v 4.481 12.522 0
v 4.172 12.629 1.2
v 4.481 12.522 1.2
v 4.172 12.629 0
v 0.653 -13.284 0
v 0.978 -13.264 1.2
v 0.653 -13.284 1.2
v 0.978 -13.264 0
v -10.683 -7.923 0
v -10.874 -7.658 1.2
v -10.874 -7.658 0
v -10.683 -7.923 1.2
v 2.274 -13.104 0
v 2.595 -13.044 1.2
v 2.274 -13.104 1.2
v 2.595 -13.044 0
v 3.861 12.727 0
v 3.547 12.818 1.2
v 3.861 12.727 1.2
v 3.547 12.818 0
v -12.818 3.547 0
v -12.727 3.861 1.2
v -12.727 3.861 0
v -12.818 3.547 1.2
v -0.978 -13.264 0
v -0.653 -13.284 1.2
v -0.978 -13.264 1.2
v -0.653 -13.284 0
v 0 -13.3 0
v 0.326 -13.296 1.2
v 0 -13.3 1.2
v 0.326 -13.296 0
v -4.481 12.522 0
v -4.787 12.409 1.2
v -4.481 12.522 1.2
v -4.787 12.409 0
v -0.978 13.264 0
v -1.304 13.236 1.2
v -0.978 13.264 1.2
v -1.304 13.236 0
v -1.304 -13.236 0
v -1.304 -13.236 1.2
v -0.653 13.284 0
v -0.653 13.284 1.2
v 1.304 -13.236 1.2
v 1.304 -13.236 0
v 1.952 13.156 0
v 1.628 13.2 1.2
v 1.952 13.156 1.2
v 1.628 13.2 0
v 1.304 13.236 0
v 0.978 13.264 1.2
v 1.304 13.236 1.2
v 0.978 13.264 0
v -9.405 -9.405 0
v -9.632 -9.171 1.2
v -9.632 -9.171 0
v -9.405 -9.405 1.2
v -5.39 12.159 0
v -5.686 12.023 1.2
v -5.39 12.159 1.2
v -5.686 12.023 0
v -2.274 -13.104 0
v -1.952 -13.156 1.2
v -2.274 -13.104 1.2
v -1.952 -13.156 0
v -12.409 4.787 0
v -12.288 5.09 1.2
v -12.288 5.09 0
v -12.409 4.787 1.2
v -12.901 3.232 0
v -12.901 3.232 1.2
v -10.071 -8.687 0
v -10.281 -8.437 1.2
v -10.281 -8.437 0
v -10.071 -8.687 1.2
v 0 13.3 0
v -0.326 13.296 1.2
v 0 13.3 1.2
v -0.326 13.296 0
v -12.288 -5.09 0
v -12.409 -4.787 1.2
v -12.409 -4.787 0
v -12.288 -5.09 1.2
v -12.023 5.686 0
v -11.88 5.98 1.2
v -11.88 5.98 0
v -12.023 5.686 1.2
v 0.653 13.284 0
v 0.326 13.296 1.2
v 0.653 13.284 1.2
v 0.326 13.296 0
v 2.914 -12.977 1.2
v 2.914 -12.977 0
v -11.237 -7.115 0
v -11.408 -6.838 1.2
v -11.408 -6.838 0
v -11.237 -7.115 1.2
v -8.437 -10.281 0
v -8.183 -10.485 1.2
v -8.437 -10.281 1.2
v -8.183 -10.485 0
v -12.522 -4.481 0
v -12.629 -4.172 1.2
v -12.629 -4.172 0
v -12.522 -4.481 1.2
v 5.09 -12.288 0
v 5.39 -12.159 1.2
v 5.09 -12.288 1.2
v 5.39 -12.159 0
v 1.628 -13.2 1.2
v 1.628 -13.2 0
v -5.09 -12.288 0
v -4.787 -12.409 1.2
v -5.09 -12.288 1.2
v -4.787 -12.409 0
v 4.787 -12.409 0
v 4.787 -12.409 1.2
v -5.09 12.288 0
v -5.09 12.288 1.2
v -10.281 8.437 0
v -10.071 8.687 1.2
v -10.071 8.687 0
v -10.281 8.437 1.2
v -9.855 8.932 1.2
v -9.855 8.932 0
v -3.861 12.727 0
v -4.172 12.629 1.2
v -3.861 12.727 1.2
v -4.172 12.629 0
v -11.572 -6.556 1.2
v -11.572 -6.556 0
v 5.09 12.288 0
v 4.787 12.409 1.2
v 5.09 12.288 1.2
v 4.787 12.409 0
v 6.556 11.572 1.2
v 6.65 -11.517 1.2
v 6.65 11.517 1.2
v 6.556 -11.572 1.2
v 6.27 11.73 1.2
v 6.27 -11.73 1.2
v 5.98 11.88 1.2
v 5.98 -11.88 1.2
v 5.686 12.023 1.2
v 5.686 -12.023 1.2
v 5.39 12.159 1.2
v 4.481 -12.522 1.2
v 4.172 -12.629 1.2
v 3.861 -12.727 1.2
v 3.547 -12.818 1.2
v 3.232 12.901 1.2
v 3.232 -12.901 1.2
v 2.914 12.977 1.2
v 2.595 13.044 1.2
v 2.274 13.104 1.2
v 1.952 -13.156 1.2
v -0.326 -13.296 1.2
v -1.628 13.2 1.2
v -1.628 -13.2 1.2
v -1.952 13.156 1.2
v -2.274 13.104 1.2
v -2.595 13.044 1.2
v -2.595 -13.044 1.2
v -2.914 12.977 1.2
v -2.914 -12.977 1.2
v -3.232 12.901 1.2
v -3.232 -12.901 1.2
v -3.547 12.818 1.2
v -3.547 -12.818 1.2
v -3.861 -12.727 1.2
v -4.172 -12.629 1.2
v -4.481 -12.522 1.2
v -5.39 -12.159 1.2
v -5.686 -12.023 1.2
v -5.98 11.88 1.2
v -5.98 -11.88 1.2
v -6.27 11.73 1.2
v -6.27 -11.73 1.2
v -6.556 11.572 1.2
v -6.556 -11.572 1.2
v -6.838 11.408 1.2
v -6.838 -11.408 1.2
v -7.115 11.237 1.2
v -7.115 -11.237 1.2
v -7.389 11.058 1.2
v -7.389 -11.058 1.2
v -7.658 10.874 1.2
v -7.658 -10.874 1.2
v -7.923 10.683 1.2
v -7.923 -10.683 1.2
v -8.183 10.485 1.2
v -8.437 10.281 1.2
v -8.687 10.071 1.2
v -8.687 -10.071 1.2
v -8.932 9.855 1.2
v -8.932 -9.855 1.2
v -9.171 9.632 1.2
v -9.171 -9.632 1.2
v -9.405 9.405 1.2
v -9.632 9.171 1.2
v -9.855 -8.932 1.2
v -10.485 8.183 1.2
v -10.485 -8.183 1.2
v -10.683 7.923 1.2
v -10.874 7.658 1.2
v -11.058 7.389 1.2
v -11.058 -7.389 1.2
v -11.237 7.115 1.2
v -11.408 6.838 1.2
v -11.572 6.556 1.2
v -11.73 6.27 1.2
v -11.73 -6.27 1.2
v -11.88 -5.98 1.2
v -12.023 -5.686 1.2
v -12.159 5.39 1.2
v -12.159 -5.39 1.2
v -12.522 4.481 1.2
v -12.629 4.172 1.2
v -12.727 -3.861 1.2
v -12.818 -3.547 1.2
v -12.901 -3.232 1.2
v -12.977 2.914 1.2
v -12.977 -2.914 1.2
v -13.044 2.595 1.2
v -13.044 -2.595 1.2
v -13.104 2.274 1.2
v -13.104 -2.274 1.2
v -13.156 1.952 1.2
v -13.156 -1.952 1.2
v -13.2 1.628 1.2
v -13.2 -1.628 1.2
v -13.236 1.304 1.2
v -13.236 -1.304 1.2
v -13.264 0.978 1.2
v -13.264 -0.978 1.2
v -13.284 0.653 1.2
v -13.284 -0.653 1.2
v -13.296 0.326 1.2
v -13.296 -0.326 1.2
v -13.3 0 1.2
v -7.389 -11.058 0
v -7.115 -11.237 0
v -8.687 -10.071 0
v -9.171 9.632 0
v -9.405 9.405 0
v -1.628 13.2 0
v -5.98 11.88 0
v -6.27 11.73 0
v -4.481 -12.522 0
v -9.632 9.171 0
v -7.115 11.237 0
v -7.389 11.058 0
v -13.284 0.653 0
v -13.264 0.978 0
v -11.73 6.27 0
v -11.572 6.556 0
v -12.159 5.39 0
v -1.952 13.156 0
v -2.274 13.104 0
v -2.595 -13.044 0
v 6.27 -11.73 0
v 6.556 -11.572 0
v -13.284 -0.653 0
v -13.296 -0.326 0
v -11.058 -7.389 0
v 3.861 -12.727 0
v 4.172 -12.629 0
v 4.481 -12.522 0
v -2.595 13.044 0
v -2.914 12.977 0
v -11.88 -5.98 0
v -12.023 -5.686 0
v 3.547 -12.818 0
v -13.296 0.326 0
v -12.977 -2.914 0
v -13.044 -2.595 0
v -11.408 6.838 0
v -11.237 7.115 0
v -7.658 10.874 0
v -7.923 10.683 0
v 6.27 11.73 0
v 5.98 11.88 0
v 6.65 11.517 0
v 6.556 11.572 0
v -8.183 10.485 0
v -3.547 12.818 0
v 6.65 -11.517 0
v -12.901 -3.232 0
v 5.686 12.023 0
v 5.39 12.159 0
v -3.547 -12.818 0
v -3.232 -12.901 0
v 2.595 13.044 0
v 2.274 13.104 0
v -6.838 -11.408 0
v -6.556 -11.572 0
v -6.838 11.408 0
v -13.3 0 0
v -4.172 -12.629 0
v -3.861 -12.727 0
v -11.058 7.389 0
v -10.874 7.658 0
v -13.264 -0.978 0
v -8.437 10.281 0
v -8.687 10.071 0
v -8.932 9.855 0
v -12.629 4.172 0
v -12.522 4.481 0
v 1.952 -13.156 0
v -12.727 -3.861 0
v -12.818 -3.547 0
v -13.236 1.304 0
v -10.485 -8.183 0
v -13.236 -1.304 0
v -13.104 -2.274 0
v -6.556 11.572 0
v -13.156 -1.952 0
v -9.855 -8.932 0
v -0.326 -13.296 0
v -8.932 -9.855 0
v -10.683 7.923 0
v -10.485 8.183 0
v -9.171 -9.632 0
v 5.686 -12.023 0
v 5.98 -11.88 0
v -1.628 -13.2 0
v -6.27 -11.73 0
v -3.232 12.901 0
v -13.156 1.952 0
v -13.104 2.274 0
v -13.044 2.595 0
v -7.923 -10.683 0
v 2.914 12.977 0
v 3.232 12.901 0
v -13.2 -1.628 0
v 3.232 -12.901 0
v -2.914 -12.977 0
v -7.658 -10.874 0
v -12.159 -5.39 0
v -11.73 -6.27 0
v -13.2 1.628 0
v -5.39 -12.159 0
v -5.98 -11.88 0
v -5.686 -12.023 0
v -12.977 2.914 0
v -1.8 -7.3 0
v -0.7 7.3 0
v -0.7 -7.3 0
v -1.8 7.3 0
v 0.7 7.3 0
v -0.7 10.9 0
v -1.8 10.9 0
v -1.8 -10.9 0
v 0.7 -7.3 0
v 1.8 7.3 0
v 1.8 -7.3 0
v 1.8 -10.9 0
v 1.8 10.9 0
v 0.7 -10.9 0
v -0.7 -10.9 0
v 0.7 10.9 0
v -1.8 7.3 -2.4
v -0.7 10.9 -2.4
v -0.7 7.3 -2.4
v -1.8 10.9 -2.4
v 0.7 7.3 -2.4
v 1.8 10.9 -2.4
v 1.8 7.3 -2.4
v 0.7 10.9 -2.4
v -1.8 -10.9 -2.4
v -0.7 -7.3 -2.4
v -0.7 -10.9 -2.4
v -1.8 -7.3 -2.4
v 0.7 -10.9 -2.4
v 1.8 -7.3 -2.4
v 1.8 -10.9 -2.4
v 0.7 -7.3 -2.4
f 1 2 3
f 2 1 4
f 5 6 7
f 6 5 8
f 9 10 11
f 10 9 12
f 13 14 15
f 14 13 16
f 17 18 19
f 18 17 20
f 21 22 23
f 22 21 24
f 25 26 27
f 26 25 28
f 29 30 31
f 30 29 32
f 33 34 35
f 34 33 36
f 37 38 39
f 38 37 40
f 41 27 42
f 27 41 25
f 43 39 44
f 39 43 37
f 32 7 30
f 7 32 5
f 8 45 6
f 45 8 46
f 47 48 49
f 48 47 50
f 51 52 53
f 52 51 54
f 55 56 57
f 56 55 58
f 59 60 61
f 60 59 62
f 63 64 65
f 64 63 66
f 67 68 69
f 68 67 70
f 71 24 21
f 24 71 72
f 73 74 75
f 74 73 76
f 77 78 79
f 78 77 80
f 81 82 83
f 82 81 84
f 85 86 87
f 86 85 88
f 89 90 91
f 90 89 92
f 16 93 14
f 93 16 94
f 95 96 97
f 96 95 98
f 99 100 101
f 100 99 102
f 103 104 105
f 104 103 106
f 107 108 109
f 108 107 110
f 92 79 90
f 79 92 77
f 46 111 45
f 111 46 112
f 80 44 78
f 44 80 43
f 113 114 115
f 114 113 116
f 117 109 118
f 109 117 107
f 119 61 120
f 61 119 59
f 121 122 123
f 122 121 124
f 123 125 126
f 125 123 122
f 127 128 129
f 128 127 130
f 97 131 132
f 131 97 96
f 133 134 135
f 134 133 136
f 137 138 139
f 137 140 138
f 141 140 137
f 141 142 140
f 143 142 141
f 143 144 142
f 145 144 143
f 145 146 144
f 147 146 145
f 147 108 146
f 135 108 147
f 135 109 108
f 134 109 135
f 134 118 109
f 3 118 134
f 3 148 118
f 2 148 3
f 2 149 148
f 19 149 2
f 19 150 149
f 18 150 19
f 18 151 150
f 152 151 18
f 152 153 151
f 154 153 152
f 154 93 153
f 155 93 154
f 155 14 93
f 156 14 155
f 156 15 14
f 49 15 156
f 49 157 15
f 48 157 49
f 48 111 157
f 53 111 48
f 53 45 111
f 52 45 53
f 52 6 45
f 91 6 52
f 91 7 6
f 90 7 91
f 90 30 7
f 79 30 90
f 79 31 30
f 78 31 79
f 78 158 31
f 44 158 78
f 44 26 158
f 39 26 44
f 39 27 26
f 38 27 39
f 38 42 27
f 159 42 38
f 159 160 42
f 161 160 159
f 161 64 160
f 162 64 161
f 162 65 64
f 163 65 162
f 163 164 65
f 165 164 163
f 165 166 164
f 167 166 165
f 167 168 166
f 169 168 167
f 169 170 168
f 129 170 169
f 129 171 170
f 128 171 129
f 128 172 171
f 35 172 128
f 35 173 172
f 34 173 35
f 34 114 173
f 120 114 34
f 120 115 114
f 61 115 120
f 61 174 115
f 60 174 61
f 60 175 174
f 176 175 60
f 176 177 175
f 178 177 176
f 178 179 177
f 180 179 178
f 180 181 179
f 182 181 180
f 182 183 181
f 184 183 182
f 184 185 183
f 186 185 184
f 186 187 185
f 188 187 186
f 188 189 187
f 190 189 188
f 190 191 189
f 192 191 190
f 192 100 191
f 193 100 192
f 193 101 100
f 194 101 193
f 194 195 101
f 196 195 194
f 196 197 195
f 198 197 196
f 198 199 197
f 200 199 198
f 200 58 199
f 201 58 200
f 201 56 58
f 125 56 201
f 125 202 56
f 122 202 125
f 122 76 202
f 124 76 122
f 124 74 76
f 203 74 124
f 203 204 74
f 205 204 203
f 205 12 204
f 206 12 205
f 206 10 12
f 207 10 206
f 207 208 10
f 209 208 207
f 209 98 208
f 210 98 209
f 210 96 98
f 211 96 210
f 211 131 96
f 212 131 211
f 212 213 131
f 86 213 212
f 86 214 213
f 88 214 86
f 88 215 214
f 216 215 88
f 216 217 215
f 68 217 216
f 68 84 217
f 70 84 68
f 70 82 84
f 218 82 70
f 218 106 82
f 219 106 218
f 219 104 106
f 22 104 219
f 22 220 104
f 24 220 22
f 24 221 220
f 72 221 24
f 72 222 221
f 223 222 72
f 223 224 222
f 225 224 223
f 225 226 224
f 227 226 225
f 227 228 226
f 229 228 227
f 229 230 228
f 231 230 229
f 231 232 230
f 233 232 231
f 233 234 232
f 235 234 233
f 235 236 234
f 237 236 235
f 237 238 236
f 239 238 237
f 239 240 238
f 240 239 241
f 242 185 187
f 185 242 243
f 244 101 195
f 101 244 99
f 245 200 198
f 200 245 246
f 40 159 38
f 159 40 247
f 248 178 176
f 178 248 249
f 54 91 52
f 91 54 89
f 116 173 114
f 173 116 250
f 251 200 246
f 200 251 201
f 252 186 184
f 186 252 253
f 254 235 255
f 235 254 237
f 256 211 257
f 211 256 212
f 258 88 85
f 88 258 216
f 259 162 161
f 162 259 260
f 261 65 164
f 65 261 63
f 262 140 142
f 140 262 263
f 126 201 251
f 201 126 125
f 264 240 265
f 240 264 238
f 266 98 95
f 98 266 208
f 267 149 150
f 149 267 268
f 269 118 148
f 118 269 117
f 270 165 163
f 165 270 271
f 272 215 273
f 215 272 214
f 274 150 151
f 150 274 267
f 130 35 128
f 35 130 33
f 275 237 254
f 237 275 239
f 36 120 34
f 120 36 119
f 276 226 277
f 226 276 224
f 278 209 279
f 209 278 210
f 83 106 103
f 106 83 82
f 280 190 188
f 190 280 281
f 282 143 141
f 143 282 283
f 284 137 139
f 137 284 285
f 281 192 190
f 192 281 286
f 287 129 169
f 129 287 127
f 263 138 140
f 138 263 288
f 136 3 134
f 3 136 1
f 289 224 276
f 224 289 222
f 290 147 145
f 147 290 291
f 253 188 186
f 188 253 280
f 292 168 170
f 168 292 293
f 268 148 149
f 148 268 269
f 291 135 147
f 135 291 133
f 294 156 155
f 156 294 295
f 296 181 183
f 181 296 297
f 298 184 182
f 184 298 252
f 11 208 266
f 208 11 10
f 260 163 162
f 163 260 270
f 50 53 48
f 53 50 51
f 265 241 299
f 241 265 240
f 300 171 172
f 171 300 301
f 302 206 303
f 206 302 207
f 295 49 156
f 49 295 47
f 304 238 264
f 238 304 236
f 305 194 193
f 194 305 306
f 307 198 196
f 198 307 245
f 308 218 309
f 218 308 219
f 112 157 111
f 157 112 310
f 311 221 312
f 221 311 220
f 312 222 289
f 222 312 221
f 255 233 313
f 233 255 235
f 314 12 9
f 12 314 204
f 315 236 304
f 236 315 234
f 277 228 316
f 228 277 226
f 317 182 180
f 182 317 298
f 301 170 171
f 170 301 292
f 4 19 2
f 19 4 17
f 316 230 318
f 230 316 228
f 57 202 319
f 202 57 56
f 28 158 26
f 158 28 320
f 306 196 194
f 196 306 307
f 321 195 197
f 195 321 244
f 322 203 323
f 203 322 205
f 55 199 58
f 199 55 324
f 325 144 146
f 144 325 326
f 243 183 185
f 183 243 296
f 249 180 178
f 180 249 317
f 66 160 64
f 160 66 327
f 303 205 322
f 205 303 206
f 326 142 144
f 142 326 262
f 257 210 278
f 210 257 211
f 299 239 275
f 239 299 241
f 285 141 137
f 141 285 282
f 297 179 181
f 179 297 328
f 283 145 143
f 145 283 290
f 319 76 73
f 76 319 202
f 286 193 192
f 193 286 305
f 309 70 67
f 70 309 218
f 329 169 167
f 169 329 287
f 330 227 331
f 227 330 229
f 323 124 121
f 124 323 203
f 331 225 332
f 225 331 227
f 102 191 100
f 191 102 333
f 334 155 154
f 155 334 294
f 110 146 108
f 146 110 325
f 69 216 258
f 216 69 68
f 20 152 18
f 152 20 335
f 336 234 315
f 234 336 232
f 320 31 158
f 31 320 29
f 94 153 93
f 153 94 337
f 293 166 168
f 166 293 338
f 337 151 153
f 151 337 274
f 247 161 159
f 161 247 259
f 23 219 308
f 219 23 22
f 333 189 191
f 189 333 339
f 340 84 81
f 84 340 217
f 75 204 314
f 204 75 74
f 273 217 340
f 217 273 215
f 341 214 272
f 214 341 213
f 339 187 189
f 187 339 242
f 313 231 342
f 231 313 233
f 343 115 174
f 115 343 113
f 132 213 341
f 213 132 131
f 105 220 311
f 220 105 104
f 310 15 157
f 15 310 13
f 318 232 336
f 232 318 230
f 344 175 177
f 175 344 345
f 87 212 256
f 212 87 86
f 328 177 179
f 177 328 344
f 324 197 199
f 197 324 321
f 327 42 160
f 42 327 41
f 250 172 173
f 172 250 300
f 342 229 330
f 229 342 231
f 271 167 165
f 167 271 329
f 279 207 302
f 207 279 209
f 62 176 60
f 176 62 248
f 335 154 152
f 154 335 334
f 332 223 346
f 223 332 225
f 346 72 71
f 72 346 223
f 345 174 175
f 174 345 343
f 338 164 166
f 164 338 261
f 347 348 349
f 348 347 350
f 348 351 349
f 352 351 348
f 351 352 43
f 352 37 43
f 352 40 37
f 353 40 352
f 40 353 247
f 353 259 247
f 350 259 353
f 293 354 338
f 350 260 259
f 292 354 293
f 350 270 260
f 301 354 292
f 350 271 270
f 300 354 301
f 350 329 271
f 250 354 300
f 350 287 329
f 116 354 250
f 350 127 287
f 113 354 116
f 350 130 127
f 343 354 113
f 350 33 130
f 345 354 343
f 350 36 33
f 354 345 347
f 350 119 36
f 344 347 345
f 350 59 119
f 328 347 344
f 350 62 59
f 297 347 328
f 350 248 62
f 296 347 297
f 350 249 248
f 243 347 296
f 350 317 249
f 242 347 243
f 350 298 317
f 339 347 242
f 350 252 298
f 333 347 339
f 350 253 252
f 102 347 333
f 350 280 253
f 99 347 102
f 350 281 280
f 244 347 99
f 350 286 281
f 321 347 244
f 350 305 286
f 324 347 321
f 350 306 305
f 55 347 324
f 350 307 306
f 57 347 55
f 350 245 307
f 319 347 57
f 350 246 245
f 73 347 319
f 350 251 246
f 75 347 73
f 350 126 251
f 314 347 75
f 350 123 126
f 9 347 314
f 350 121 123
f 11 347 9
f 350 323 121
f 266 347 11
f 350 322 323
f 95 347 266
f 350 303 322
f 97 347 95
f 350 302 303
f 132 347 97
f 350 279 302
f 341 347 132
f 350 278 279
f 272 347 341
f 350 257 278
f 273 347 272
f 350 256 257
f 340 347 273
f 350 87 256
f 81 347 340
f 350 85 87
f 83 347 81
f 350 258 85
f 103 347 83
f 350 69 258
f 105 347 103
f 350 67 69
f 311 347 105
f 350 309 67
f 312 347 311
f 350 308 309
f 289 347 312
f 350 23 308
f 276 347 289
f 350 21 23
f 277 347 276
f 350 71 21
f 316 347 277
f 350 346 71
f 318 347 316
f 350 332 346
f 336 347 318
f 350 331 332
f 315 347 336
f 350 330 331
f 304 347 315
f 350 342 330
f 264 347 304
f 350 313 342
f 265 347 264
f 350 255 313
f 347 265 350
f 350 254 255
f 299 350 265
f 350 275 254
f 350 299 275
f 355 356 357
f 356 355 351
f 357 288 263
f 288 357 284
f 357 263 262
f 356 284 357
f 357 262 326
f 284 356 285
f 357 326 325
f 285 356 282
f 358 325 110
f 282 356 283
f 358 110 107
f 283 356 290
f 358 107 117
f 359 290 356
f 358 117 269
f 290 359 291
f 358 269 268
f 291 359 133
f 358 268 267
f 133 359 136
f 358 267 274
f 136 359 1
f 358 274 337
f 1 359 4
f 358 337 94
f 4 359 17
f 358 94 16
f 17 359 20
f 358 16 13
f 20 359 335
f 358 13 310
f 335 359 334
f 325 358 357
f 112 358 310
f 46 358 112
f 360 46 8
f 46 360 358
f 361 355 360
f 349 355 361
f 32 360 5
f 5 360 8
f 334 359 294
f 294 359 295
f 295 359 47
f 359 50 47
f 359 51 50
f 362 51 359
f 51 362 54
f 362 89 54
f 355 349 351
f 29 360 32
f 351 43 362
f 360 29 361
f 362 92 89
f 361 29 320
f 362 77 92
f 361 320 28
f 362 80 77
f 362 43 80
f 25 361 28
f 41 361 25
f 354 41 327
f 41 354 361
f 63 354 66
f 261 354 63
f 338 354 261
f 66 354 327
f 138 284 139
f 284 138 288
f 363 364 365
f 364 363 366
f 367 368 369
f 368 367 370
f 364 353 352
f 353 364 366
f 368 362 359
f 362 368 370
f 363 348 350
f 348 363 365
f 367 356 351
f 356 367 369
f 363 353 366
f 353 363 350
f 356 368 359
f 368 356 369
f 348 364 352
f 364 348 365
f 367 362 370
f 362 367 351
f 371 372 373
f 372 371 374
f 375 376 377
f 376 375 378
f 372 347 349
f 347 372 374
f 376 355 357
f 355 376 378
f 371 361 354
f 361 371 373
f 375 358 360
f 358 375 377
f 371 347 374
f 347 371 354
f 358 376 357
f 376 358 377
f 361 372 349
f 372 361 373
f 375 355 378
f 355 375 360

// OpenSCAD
// file: components/Fittings.scad
include <../Settings.scad>

// debug object
union() {
    $fn=150;
    tlrnc = 0.4;
    w=wallThicknes;
    topFitting(15, internalDiameter, w, tlrnc=tlrnc);

    translate ([0,0, 16]) fitting(15, internalDiameter, w, tlrnc=tlrnc);

    translate ([0,40, 0]) tube(15, internalDiameter, w);
}

module topFitting(overlap, internalDiameter, wallThicknes, tlrnc=0.1) {
    if (true) {
        tube(overlap, internalDiameter, wallThicknes);
    } else {
        zd = 0.001; //size difference for improve quick rendering
        outerDiameter = internalDiameter + 2*wallThicknes;
        interFitDiam = internalDiameter + 2*tlrnc;
        h = (outerDiameter - interFitDiam);
        echo(str(">>> topFitting::Outer Diameter=", outerDiameter));
        echo(str(">>> topFitting::Inner diameter=", interFitDiam));
        difference() {
            cylinder(h=overlap, d=outerDiameter);
            union() {
                translate([0,0,h]) cylinder(h=overlap, d=interFitDiam);
                cylinder(h=h+zd, d1=internalDiameter, d2=interFitDiam);
            }
            translate([0,0,-zd]) cylinder(h=overlap + 2*zd, d=internalDiameter);
        }
    }
}

module fitting(overlap, internalDiameter, wallThicknes, tlrnc=0.1) {
    zd = 0.001; //size difference for improve quick rendering
    
    outerDiameter = internalDiameter + 2*wallThicknes;
    interFitDiam = internalDiameter - 2*tlrnc;
    internalD = interFitDiam - 2*wallThicknes;
    h = (outerDiameter - interFitDiam)/2;
    echo(str(">>> fitting::Outer Diameter=", outerDiameter));
    echo(str(">>> fitting::Inner diameter=", interFitDiam));

    translate([0,0,overlap]) difference() {
        cylinder(h=h, d=internalDiameter);
        translate([0,0,-zd]) cylinder(h=h+2*zd, d2=internalDiameter, d1=internalD);
    }
    difference() {
        union() {
            cylinder(h=overlap, d=interFitDiam);
            translate([0,0,overlap-h])cylinder(h=h, d1=interFitDiam, d2=outerDiameter);
        }
        translate([0,0,-zd]) cylinder(h=overlap + 2*zd, d=internalD);
    }
}

module tube(length, internalDiameter, wallThicknes) {
    zd = 0.001; //size difference for improve quick rendering
    difference() {
        cylinder(h=length, d=internalDiameter + 2*wallThicknes);
        translate([0,0,-zd]) cylinder(h=length + 2*zd, d=internalDiameter);
    }
}
// file: CamAltimeterFrame.scad
use <components/Camera.scad>
include <Settings.scad>

//internalDiameter=internalDiameter - 2*tlrnc;

length=100;
camL=14;
camW=18;

CamAltimeterMount(length, internalDiameter - 4*tlrnc, frameThicknes- 2*tlrnc, tlrnc);

module CamAltimeterMount(length, internalDiameter, wallThicknes, tlrnc) {
    echo(str("WallThicknes=", wallThicknes));
    translate([-internalDiameter/2, -wallThicknes/2, 0 ]) {
        difference() {
            cube([internalDiameter, wallThicknes, length ]);
            translate([internalDiameter/2 - camL/2 ,-tlrnc,length -camW ]) {
                cube([camL, wallThicknes + 2 * tlrnc, camW ]);
            }
            translate([internalDiameter/2 - camL/2 ,-tlrnc,-0.01]) {
                cube([camL, wallThicknes + 2 * tlrnc, 5 ]);
            }
        }
        yPos = -3 + wallThicknes;
        translate([internalDiameter/2 + camL/2, yPos, length -camW + camW/2 ]) holder();
        translate([internalDiameter/2 - camL/2 - 3, yPos, length -camW + camW/2 ]) holder();
    }
}

module holder() {
    rotate([0,90,0]) difference() {
        cylinder(r=3, h=3);
        cylinder(r=1, h=3 + tlrnc);
    }
}
// file: MainTube.scad
use <components/Fittings.scad>
/// coments
//params
include <Settings.scad>


length=200;

MainTube(length, internalDiameter, wallThicknes, overlap, tlrnc);

module MainTube(length, internalDiameter, wallThicknes, overlap, tlrnc) {
    zd = 0.001; //size difference for improve quick rendering

    translate([0, 0, length - overlap]) topFitting(overlap, internalDiameter, wallThicknes, tlrnc);
    translate([0,0, overlap]) tube(length - 2* overlap, internalDiameter, wallThicknes);
    fitting(overlap, internalDiameter, wallThicknes, tlrnc);
}
// file: NoseCone.scad
use <components/Fittings.scad>

/// coments
//params
include <Settings.scad>

curveSteps=$fn >100 ? 100 : $fn;

length=72;
holderBarLength = 3*internalDiameter/5;
holderBarDiameter=5;

type=""; //"Power";//"TO";//"Conic";

/**
Parabola Type	K′ Value
--------------------------
Cone	0
Half	1/2
Three Quarter	3/4
Full	1
**/
K=1;

/**
Power Type	N Value
-----------------
Cylinder	0
Half (Parabola)	1/2
Three Quarter	3/4
Cone	1
**/
N=3/4;

/**
Haack Series Type	C Value
-------------------------
LD-Haack (Von Kármán)	0
LV-Haack	1/3
Tangent	2/3
**/
C=1/3;

NoseCone(length, internalDiameter, true);

module NoseCone(l, internalDiameter, noBar = false) {
    translate([0,0,overlap])  {
        cone(l,(internalDiameter+2*wallThicknes)/2);
    }
    if (!noBar) {
        holderBar(overlap, internalDiameter, wallThicknes,holderBarLength, holderBarDiameter, tlrnc);
    }
    fitting(overlap, internalDiameter, wallThicknes, tlrnc);
}

module holderBar(overlap, internalDiameter, wallThicknes,holderBarLength, holderBarDiameter, tlrnc=0.1) {
    difference() {
        cylinder(h = overlap, d = internalDiameter-2*wallThicknes);
        sphere(d = holderBarLength);
    }
    translate([0,holderBarLength/2,holderBarDiameter/2]) rotate([90, 0, 0]) cylinder(h=holderBarLength, d=holderBarDiameter);
}

module cone(l,r) {
    zd = 0.01;
    translate([0,0,l]) rotate([180,0,0]) {
        st=l/curveSteps;
        for(i=[0:st:l]) {
            dh = st + zd;
            translate([0, 0, i]) {
                if(type=="Conic") {
                    r1 = coneF(i, r, l);
                    r2 = coneF(i + st, r, l);
                    cylinder(h = dh, r1=r1, r2=r2 );
                } else if(type=="Ogive") {
                    r1 = tangOgiveF(i, r, l);
                    r2 = tangOgiveF(i + st, r, l);
                    cylinder(h = dh,r1=r1, r2=r2 );
                } else if(type=="Elliptical") {
                    r1 = elliptF(i, r, l);
                    r2 = elliptF(i + st, r, l);
                    cylinder(h = dh,r1=r1, r2=r2 );
                } else if(type=="Parabolic") {
                    r1 = parabF(i, r, l);
                    r2 = parabF(i + st, r, l);
                    cylinder(h = dh,r1=r1, r2=r2 );
                } else if(type=="Power") {
                    r1 = powerF(i, r, l);
                    r2 = powerF(i + st, r, l);
                    cylinder(h = dh,r1=r1, r2=r2 );
                } else {
                    r1 = haackF(i, r, l);
                    r2 = haackF(i + st, r, l);
                    cylinder(h = dh,r1=r1, r2=r2 );
                }
            }
        }
    }
}

function coneF(x,r,l) = x*r/l;
function tangOgiveF(x,r,l) = sqrt(pow(tangOgiveQ(r,l),2) - pow(l - x,2)) + r -tangOgiveQ(r,l);
function tangOgiveQ(r,l) = (r*r + l*l)/(2*r);
function elliptF(x, r, l) = r * sqrt(1-pow(l - x, 2)/pow(l, 2));
function parabF(x,r,l) = r * ((2*x/l -K*pow(x/l,2))/(2-K));
function powerF(x,r,l) = r * pow(x/l, N);
function hA(x,l) = acos(1-2*x/l);
function haackF(x,r,l) = r * sqrt(hA(x,l)*PI/180 - sin(2*hA(x,l))/2 + C * pow(sin(hA(x,l)),3))/sqrt(PI);
// file: Settings.scad
/// coments
//params

$fn=256;
tlrnc=0.1;
overlap=15;
internalDiameter=27;
perimeter = 0.4;
wallThicknes = 0.8;
frameThicknes=1.2;
rodDiam=9;
// file: CamAltimeterMount.scad
use <NoseCone.scad>
use <components/Camera.scad>
use <MainTube.scad>
use <CamAltimeterFrame.scad>

/// coments
//params
include <Settings.scad>

length=100;
holderBarLength = 3*internalDiameter/5;
holderBarDiameter=5;

tubeWithWhole();

module tubeWithWhole() {
    difference() {
        outerTubeWithFitting(length, internalDiameter);
        translate([0,internalDiameter/2 - 3, length - 3 ]) rotate([-40, 0, 0]) #camera();
    }
    translate([internalDiameter/2-frameThicknes, 0, overlap]) slot(length - overlap, frameThicknes, tlrnc);
    rotate([0,0,180]) translate([internalDiameter/2-frameThicknes, 0, overlap]) slot(length - overlap, frameThicknes, tlrnc);
}

module outerTubeWithFitting(l, internalDiameter) {
    holderBar(overlap,internalDiameter,wallThicknes,holderBarLength,holderBarDiameter);
    MainTube(length + 2* overlap, internalDiameter, wallThicknes, overlap, tlrnc);
}

module slot(l, wallThicknes, tlrnc) {
    zd = 0.001;
    translate([-wallThicknes, -3/2 *wallThicknes, 0]) difference() {
        cube([2*wallThicknes, 3*wallThicknes, l]);
        translate([-zd, wallThicknes - tlrnc, -zd])
            cube([2*(wallThicknes + zd), wallThicknes + 2*tlrnc, l + 2*zd]);
    }
}
// file: components/Camera.scad
camera();

module camera() {
    objLength = 8;
    objD = 12;
    camW=14;
    camL=14;
    camH=8;
    
    union() {
        translate([0, -objLength - camH/2, 0]) rotate([90,0,0]) cube([camL, camW, camH], center=true);
        rotate([90,0,0]) translate([0, 0, -objLength]) cylinder(h=2*objLength, d=objD);
        translate([0,-4,0]) rotate([90,0,0]) viewField();
    }
}

module viewField() {
    hAng1 = 60;
    hAng2 = 60;
    vAng1 = 82 - 45;
    vAng2 = 45;
    coneHeight = 100;

    w1 = tan(hAng1) * coneHeight;
    w2 = -tan(hAng2) * coneHeight;
    h1 = tan(vAng1) * coneHeight;
    h2 = -tan(vAng2) * coneHeight;
    
    translate([0,0,-coneHeight]) polyhedron(
      points=[[w1,h1,0],[w1,h2,0],[w2,h2,0],[w2,h1,0],[0,0,coneHeight]],
      faces=[[0,1,4],[1,2,4],[2,3,4],[3,0,4],[1,0,3],[2,1,3]]
    );
}
// main file
use <components/Camera.scad>
use <CamAltimeterMount.scad>
include <Settings.scad>

camL=14;
camW=18;

GyroHolder(internalDiameter - 4*tlrnc, frameThicknes, tlrnc);

module GyroHolder(internalDiameter, wallThicknes, tlrnc) {
    zd = 0.001;
    difference() {
        cylinder(d=internalDiameter, h=wallThicknes);
        translate([internalDiameter/4, -internalDiameter/2, -zd]) cube([internalDiameter, internalDiameter, wallThicknes+2*zd]);
    }
    slotL = 3*wallThicknes;
    translate([0, internalDiameter/2 - slotL - 2*wallThicknes, -wallThicknes]) {
        rotate([0,90,90]) slot(slotL, wallThicknes, tlrnc);
    }
    translate([0, -internalDiameter/2 + 2*wallThicknes, -wallThicknes]) {
        rotate([0,90,90]) slot(slotL, wallThicknes, tlrnc);
    }

}
